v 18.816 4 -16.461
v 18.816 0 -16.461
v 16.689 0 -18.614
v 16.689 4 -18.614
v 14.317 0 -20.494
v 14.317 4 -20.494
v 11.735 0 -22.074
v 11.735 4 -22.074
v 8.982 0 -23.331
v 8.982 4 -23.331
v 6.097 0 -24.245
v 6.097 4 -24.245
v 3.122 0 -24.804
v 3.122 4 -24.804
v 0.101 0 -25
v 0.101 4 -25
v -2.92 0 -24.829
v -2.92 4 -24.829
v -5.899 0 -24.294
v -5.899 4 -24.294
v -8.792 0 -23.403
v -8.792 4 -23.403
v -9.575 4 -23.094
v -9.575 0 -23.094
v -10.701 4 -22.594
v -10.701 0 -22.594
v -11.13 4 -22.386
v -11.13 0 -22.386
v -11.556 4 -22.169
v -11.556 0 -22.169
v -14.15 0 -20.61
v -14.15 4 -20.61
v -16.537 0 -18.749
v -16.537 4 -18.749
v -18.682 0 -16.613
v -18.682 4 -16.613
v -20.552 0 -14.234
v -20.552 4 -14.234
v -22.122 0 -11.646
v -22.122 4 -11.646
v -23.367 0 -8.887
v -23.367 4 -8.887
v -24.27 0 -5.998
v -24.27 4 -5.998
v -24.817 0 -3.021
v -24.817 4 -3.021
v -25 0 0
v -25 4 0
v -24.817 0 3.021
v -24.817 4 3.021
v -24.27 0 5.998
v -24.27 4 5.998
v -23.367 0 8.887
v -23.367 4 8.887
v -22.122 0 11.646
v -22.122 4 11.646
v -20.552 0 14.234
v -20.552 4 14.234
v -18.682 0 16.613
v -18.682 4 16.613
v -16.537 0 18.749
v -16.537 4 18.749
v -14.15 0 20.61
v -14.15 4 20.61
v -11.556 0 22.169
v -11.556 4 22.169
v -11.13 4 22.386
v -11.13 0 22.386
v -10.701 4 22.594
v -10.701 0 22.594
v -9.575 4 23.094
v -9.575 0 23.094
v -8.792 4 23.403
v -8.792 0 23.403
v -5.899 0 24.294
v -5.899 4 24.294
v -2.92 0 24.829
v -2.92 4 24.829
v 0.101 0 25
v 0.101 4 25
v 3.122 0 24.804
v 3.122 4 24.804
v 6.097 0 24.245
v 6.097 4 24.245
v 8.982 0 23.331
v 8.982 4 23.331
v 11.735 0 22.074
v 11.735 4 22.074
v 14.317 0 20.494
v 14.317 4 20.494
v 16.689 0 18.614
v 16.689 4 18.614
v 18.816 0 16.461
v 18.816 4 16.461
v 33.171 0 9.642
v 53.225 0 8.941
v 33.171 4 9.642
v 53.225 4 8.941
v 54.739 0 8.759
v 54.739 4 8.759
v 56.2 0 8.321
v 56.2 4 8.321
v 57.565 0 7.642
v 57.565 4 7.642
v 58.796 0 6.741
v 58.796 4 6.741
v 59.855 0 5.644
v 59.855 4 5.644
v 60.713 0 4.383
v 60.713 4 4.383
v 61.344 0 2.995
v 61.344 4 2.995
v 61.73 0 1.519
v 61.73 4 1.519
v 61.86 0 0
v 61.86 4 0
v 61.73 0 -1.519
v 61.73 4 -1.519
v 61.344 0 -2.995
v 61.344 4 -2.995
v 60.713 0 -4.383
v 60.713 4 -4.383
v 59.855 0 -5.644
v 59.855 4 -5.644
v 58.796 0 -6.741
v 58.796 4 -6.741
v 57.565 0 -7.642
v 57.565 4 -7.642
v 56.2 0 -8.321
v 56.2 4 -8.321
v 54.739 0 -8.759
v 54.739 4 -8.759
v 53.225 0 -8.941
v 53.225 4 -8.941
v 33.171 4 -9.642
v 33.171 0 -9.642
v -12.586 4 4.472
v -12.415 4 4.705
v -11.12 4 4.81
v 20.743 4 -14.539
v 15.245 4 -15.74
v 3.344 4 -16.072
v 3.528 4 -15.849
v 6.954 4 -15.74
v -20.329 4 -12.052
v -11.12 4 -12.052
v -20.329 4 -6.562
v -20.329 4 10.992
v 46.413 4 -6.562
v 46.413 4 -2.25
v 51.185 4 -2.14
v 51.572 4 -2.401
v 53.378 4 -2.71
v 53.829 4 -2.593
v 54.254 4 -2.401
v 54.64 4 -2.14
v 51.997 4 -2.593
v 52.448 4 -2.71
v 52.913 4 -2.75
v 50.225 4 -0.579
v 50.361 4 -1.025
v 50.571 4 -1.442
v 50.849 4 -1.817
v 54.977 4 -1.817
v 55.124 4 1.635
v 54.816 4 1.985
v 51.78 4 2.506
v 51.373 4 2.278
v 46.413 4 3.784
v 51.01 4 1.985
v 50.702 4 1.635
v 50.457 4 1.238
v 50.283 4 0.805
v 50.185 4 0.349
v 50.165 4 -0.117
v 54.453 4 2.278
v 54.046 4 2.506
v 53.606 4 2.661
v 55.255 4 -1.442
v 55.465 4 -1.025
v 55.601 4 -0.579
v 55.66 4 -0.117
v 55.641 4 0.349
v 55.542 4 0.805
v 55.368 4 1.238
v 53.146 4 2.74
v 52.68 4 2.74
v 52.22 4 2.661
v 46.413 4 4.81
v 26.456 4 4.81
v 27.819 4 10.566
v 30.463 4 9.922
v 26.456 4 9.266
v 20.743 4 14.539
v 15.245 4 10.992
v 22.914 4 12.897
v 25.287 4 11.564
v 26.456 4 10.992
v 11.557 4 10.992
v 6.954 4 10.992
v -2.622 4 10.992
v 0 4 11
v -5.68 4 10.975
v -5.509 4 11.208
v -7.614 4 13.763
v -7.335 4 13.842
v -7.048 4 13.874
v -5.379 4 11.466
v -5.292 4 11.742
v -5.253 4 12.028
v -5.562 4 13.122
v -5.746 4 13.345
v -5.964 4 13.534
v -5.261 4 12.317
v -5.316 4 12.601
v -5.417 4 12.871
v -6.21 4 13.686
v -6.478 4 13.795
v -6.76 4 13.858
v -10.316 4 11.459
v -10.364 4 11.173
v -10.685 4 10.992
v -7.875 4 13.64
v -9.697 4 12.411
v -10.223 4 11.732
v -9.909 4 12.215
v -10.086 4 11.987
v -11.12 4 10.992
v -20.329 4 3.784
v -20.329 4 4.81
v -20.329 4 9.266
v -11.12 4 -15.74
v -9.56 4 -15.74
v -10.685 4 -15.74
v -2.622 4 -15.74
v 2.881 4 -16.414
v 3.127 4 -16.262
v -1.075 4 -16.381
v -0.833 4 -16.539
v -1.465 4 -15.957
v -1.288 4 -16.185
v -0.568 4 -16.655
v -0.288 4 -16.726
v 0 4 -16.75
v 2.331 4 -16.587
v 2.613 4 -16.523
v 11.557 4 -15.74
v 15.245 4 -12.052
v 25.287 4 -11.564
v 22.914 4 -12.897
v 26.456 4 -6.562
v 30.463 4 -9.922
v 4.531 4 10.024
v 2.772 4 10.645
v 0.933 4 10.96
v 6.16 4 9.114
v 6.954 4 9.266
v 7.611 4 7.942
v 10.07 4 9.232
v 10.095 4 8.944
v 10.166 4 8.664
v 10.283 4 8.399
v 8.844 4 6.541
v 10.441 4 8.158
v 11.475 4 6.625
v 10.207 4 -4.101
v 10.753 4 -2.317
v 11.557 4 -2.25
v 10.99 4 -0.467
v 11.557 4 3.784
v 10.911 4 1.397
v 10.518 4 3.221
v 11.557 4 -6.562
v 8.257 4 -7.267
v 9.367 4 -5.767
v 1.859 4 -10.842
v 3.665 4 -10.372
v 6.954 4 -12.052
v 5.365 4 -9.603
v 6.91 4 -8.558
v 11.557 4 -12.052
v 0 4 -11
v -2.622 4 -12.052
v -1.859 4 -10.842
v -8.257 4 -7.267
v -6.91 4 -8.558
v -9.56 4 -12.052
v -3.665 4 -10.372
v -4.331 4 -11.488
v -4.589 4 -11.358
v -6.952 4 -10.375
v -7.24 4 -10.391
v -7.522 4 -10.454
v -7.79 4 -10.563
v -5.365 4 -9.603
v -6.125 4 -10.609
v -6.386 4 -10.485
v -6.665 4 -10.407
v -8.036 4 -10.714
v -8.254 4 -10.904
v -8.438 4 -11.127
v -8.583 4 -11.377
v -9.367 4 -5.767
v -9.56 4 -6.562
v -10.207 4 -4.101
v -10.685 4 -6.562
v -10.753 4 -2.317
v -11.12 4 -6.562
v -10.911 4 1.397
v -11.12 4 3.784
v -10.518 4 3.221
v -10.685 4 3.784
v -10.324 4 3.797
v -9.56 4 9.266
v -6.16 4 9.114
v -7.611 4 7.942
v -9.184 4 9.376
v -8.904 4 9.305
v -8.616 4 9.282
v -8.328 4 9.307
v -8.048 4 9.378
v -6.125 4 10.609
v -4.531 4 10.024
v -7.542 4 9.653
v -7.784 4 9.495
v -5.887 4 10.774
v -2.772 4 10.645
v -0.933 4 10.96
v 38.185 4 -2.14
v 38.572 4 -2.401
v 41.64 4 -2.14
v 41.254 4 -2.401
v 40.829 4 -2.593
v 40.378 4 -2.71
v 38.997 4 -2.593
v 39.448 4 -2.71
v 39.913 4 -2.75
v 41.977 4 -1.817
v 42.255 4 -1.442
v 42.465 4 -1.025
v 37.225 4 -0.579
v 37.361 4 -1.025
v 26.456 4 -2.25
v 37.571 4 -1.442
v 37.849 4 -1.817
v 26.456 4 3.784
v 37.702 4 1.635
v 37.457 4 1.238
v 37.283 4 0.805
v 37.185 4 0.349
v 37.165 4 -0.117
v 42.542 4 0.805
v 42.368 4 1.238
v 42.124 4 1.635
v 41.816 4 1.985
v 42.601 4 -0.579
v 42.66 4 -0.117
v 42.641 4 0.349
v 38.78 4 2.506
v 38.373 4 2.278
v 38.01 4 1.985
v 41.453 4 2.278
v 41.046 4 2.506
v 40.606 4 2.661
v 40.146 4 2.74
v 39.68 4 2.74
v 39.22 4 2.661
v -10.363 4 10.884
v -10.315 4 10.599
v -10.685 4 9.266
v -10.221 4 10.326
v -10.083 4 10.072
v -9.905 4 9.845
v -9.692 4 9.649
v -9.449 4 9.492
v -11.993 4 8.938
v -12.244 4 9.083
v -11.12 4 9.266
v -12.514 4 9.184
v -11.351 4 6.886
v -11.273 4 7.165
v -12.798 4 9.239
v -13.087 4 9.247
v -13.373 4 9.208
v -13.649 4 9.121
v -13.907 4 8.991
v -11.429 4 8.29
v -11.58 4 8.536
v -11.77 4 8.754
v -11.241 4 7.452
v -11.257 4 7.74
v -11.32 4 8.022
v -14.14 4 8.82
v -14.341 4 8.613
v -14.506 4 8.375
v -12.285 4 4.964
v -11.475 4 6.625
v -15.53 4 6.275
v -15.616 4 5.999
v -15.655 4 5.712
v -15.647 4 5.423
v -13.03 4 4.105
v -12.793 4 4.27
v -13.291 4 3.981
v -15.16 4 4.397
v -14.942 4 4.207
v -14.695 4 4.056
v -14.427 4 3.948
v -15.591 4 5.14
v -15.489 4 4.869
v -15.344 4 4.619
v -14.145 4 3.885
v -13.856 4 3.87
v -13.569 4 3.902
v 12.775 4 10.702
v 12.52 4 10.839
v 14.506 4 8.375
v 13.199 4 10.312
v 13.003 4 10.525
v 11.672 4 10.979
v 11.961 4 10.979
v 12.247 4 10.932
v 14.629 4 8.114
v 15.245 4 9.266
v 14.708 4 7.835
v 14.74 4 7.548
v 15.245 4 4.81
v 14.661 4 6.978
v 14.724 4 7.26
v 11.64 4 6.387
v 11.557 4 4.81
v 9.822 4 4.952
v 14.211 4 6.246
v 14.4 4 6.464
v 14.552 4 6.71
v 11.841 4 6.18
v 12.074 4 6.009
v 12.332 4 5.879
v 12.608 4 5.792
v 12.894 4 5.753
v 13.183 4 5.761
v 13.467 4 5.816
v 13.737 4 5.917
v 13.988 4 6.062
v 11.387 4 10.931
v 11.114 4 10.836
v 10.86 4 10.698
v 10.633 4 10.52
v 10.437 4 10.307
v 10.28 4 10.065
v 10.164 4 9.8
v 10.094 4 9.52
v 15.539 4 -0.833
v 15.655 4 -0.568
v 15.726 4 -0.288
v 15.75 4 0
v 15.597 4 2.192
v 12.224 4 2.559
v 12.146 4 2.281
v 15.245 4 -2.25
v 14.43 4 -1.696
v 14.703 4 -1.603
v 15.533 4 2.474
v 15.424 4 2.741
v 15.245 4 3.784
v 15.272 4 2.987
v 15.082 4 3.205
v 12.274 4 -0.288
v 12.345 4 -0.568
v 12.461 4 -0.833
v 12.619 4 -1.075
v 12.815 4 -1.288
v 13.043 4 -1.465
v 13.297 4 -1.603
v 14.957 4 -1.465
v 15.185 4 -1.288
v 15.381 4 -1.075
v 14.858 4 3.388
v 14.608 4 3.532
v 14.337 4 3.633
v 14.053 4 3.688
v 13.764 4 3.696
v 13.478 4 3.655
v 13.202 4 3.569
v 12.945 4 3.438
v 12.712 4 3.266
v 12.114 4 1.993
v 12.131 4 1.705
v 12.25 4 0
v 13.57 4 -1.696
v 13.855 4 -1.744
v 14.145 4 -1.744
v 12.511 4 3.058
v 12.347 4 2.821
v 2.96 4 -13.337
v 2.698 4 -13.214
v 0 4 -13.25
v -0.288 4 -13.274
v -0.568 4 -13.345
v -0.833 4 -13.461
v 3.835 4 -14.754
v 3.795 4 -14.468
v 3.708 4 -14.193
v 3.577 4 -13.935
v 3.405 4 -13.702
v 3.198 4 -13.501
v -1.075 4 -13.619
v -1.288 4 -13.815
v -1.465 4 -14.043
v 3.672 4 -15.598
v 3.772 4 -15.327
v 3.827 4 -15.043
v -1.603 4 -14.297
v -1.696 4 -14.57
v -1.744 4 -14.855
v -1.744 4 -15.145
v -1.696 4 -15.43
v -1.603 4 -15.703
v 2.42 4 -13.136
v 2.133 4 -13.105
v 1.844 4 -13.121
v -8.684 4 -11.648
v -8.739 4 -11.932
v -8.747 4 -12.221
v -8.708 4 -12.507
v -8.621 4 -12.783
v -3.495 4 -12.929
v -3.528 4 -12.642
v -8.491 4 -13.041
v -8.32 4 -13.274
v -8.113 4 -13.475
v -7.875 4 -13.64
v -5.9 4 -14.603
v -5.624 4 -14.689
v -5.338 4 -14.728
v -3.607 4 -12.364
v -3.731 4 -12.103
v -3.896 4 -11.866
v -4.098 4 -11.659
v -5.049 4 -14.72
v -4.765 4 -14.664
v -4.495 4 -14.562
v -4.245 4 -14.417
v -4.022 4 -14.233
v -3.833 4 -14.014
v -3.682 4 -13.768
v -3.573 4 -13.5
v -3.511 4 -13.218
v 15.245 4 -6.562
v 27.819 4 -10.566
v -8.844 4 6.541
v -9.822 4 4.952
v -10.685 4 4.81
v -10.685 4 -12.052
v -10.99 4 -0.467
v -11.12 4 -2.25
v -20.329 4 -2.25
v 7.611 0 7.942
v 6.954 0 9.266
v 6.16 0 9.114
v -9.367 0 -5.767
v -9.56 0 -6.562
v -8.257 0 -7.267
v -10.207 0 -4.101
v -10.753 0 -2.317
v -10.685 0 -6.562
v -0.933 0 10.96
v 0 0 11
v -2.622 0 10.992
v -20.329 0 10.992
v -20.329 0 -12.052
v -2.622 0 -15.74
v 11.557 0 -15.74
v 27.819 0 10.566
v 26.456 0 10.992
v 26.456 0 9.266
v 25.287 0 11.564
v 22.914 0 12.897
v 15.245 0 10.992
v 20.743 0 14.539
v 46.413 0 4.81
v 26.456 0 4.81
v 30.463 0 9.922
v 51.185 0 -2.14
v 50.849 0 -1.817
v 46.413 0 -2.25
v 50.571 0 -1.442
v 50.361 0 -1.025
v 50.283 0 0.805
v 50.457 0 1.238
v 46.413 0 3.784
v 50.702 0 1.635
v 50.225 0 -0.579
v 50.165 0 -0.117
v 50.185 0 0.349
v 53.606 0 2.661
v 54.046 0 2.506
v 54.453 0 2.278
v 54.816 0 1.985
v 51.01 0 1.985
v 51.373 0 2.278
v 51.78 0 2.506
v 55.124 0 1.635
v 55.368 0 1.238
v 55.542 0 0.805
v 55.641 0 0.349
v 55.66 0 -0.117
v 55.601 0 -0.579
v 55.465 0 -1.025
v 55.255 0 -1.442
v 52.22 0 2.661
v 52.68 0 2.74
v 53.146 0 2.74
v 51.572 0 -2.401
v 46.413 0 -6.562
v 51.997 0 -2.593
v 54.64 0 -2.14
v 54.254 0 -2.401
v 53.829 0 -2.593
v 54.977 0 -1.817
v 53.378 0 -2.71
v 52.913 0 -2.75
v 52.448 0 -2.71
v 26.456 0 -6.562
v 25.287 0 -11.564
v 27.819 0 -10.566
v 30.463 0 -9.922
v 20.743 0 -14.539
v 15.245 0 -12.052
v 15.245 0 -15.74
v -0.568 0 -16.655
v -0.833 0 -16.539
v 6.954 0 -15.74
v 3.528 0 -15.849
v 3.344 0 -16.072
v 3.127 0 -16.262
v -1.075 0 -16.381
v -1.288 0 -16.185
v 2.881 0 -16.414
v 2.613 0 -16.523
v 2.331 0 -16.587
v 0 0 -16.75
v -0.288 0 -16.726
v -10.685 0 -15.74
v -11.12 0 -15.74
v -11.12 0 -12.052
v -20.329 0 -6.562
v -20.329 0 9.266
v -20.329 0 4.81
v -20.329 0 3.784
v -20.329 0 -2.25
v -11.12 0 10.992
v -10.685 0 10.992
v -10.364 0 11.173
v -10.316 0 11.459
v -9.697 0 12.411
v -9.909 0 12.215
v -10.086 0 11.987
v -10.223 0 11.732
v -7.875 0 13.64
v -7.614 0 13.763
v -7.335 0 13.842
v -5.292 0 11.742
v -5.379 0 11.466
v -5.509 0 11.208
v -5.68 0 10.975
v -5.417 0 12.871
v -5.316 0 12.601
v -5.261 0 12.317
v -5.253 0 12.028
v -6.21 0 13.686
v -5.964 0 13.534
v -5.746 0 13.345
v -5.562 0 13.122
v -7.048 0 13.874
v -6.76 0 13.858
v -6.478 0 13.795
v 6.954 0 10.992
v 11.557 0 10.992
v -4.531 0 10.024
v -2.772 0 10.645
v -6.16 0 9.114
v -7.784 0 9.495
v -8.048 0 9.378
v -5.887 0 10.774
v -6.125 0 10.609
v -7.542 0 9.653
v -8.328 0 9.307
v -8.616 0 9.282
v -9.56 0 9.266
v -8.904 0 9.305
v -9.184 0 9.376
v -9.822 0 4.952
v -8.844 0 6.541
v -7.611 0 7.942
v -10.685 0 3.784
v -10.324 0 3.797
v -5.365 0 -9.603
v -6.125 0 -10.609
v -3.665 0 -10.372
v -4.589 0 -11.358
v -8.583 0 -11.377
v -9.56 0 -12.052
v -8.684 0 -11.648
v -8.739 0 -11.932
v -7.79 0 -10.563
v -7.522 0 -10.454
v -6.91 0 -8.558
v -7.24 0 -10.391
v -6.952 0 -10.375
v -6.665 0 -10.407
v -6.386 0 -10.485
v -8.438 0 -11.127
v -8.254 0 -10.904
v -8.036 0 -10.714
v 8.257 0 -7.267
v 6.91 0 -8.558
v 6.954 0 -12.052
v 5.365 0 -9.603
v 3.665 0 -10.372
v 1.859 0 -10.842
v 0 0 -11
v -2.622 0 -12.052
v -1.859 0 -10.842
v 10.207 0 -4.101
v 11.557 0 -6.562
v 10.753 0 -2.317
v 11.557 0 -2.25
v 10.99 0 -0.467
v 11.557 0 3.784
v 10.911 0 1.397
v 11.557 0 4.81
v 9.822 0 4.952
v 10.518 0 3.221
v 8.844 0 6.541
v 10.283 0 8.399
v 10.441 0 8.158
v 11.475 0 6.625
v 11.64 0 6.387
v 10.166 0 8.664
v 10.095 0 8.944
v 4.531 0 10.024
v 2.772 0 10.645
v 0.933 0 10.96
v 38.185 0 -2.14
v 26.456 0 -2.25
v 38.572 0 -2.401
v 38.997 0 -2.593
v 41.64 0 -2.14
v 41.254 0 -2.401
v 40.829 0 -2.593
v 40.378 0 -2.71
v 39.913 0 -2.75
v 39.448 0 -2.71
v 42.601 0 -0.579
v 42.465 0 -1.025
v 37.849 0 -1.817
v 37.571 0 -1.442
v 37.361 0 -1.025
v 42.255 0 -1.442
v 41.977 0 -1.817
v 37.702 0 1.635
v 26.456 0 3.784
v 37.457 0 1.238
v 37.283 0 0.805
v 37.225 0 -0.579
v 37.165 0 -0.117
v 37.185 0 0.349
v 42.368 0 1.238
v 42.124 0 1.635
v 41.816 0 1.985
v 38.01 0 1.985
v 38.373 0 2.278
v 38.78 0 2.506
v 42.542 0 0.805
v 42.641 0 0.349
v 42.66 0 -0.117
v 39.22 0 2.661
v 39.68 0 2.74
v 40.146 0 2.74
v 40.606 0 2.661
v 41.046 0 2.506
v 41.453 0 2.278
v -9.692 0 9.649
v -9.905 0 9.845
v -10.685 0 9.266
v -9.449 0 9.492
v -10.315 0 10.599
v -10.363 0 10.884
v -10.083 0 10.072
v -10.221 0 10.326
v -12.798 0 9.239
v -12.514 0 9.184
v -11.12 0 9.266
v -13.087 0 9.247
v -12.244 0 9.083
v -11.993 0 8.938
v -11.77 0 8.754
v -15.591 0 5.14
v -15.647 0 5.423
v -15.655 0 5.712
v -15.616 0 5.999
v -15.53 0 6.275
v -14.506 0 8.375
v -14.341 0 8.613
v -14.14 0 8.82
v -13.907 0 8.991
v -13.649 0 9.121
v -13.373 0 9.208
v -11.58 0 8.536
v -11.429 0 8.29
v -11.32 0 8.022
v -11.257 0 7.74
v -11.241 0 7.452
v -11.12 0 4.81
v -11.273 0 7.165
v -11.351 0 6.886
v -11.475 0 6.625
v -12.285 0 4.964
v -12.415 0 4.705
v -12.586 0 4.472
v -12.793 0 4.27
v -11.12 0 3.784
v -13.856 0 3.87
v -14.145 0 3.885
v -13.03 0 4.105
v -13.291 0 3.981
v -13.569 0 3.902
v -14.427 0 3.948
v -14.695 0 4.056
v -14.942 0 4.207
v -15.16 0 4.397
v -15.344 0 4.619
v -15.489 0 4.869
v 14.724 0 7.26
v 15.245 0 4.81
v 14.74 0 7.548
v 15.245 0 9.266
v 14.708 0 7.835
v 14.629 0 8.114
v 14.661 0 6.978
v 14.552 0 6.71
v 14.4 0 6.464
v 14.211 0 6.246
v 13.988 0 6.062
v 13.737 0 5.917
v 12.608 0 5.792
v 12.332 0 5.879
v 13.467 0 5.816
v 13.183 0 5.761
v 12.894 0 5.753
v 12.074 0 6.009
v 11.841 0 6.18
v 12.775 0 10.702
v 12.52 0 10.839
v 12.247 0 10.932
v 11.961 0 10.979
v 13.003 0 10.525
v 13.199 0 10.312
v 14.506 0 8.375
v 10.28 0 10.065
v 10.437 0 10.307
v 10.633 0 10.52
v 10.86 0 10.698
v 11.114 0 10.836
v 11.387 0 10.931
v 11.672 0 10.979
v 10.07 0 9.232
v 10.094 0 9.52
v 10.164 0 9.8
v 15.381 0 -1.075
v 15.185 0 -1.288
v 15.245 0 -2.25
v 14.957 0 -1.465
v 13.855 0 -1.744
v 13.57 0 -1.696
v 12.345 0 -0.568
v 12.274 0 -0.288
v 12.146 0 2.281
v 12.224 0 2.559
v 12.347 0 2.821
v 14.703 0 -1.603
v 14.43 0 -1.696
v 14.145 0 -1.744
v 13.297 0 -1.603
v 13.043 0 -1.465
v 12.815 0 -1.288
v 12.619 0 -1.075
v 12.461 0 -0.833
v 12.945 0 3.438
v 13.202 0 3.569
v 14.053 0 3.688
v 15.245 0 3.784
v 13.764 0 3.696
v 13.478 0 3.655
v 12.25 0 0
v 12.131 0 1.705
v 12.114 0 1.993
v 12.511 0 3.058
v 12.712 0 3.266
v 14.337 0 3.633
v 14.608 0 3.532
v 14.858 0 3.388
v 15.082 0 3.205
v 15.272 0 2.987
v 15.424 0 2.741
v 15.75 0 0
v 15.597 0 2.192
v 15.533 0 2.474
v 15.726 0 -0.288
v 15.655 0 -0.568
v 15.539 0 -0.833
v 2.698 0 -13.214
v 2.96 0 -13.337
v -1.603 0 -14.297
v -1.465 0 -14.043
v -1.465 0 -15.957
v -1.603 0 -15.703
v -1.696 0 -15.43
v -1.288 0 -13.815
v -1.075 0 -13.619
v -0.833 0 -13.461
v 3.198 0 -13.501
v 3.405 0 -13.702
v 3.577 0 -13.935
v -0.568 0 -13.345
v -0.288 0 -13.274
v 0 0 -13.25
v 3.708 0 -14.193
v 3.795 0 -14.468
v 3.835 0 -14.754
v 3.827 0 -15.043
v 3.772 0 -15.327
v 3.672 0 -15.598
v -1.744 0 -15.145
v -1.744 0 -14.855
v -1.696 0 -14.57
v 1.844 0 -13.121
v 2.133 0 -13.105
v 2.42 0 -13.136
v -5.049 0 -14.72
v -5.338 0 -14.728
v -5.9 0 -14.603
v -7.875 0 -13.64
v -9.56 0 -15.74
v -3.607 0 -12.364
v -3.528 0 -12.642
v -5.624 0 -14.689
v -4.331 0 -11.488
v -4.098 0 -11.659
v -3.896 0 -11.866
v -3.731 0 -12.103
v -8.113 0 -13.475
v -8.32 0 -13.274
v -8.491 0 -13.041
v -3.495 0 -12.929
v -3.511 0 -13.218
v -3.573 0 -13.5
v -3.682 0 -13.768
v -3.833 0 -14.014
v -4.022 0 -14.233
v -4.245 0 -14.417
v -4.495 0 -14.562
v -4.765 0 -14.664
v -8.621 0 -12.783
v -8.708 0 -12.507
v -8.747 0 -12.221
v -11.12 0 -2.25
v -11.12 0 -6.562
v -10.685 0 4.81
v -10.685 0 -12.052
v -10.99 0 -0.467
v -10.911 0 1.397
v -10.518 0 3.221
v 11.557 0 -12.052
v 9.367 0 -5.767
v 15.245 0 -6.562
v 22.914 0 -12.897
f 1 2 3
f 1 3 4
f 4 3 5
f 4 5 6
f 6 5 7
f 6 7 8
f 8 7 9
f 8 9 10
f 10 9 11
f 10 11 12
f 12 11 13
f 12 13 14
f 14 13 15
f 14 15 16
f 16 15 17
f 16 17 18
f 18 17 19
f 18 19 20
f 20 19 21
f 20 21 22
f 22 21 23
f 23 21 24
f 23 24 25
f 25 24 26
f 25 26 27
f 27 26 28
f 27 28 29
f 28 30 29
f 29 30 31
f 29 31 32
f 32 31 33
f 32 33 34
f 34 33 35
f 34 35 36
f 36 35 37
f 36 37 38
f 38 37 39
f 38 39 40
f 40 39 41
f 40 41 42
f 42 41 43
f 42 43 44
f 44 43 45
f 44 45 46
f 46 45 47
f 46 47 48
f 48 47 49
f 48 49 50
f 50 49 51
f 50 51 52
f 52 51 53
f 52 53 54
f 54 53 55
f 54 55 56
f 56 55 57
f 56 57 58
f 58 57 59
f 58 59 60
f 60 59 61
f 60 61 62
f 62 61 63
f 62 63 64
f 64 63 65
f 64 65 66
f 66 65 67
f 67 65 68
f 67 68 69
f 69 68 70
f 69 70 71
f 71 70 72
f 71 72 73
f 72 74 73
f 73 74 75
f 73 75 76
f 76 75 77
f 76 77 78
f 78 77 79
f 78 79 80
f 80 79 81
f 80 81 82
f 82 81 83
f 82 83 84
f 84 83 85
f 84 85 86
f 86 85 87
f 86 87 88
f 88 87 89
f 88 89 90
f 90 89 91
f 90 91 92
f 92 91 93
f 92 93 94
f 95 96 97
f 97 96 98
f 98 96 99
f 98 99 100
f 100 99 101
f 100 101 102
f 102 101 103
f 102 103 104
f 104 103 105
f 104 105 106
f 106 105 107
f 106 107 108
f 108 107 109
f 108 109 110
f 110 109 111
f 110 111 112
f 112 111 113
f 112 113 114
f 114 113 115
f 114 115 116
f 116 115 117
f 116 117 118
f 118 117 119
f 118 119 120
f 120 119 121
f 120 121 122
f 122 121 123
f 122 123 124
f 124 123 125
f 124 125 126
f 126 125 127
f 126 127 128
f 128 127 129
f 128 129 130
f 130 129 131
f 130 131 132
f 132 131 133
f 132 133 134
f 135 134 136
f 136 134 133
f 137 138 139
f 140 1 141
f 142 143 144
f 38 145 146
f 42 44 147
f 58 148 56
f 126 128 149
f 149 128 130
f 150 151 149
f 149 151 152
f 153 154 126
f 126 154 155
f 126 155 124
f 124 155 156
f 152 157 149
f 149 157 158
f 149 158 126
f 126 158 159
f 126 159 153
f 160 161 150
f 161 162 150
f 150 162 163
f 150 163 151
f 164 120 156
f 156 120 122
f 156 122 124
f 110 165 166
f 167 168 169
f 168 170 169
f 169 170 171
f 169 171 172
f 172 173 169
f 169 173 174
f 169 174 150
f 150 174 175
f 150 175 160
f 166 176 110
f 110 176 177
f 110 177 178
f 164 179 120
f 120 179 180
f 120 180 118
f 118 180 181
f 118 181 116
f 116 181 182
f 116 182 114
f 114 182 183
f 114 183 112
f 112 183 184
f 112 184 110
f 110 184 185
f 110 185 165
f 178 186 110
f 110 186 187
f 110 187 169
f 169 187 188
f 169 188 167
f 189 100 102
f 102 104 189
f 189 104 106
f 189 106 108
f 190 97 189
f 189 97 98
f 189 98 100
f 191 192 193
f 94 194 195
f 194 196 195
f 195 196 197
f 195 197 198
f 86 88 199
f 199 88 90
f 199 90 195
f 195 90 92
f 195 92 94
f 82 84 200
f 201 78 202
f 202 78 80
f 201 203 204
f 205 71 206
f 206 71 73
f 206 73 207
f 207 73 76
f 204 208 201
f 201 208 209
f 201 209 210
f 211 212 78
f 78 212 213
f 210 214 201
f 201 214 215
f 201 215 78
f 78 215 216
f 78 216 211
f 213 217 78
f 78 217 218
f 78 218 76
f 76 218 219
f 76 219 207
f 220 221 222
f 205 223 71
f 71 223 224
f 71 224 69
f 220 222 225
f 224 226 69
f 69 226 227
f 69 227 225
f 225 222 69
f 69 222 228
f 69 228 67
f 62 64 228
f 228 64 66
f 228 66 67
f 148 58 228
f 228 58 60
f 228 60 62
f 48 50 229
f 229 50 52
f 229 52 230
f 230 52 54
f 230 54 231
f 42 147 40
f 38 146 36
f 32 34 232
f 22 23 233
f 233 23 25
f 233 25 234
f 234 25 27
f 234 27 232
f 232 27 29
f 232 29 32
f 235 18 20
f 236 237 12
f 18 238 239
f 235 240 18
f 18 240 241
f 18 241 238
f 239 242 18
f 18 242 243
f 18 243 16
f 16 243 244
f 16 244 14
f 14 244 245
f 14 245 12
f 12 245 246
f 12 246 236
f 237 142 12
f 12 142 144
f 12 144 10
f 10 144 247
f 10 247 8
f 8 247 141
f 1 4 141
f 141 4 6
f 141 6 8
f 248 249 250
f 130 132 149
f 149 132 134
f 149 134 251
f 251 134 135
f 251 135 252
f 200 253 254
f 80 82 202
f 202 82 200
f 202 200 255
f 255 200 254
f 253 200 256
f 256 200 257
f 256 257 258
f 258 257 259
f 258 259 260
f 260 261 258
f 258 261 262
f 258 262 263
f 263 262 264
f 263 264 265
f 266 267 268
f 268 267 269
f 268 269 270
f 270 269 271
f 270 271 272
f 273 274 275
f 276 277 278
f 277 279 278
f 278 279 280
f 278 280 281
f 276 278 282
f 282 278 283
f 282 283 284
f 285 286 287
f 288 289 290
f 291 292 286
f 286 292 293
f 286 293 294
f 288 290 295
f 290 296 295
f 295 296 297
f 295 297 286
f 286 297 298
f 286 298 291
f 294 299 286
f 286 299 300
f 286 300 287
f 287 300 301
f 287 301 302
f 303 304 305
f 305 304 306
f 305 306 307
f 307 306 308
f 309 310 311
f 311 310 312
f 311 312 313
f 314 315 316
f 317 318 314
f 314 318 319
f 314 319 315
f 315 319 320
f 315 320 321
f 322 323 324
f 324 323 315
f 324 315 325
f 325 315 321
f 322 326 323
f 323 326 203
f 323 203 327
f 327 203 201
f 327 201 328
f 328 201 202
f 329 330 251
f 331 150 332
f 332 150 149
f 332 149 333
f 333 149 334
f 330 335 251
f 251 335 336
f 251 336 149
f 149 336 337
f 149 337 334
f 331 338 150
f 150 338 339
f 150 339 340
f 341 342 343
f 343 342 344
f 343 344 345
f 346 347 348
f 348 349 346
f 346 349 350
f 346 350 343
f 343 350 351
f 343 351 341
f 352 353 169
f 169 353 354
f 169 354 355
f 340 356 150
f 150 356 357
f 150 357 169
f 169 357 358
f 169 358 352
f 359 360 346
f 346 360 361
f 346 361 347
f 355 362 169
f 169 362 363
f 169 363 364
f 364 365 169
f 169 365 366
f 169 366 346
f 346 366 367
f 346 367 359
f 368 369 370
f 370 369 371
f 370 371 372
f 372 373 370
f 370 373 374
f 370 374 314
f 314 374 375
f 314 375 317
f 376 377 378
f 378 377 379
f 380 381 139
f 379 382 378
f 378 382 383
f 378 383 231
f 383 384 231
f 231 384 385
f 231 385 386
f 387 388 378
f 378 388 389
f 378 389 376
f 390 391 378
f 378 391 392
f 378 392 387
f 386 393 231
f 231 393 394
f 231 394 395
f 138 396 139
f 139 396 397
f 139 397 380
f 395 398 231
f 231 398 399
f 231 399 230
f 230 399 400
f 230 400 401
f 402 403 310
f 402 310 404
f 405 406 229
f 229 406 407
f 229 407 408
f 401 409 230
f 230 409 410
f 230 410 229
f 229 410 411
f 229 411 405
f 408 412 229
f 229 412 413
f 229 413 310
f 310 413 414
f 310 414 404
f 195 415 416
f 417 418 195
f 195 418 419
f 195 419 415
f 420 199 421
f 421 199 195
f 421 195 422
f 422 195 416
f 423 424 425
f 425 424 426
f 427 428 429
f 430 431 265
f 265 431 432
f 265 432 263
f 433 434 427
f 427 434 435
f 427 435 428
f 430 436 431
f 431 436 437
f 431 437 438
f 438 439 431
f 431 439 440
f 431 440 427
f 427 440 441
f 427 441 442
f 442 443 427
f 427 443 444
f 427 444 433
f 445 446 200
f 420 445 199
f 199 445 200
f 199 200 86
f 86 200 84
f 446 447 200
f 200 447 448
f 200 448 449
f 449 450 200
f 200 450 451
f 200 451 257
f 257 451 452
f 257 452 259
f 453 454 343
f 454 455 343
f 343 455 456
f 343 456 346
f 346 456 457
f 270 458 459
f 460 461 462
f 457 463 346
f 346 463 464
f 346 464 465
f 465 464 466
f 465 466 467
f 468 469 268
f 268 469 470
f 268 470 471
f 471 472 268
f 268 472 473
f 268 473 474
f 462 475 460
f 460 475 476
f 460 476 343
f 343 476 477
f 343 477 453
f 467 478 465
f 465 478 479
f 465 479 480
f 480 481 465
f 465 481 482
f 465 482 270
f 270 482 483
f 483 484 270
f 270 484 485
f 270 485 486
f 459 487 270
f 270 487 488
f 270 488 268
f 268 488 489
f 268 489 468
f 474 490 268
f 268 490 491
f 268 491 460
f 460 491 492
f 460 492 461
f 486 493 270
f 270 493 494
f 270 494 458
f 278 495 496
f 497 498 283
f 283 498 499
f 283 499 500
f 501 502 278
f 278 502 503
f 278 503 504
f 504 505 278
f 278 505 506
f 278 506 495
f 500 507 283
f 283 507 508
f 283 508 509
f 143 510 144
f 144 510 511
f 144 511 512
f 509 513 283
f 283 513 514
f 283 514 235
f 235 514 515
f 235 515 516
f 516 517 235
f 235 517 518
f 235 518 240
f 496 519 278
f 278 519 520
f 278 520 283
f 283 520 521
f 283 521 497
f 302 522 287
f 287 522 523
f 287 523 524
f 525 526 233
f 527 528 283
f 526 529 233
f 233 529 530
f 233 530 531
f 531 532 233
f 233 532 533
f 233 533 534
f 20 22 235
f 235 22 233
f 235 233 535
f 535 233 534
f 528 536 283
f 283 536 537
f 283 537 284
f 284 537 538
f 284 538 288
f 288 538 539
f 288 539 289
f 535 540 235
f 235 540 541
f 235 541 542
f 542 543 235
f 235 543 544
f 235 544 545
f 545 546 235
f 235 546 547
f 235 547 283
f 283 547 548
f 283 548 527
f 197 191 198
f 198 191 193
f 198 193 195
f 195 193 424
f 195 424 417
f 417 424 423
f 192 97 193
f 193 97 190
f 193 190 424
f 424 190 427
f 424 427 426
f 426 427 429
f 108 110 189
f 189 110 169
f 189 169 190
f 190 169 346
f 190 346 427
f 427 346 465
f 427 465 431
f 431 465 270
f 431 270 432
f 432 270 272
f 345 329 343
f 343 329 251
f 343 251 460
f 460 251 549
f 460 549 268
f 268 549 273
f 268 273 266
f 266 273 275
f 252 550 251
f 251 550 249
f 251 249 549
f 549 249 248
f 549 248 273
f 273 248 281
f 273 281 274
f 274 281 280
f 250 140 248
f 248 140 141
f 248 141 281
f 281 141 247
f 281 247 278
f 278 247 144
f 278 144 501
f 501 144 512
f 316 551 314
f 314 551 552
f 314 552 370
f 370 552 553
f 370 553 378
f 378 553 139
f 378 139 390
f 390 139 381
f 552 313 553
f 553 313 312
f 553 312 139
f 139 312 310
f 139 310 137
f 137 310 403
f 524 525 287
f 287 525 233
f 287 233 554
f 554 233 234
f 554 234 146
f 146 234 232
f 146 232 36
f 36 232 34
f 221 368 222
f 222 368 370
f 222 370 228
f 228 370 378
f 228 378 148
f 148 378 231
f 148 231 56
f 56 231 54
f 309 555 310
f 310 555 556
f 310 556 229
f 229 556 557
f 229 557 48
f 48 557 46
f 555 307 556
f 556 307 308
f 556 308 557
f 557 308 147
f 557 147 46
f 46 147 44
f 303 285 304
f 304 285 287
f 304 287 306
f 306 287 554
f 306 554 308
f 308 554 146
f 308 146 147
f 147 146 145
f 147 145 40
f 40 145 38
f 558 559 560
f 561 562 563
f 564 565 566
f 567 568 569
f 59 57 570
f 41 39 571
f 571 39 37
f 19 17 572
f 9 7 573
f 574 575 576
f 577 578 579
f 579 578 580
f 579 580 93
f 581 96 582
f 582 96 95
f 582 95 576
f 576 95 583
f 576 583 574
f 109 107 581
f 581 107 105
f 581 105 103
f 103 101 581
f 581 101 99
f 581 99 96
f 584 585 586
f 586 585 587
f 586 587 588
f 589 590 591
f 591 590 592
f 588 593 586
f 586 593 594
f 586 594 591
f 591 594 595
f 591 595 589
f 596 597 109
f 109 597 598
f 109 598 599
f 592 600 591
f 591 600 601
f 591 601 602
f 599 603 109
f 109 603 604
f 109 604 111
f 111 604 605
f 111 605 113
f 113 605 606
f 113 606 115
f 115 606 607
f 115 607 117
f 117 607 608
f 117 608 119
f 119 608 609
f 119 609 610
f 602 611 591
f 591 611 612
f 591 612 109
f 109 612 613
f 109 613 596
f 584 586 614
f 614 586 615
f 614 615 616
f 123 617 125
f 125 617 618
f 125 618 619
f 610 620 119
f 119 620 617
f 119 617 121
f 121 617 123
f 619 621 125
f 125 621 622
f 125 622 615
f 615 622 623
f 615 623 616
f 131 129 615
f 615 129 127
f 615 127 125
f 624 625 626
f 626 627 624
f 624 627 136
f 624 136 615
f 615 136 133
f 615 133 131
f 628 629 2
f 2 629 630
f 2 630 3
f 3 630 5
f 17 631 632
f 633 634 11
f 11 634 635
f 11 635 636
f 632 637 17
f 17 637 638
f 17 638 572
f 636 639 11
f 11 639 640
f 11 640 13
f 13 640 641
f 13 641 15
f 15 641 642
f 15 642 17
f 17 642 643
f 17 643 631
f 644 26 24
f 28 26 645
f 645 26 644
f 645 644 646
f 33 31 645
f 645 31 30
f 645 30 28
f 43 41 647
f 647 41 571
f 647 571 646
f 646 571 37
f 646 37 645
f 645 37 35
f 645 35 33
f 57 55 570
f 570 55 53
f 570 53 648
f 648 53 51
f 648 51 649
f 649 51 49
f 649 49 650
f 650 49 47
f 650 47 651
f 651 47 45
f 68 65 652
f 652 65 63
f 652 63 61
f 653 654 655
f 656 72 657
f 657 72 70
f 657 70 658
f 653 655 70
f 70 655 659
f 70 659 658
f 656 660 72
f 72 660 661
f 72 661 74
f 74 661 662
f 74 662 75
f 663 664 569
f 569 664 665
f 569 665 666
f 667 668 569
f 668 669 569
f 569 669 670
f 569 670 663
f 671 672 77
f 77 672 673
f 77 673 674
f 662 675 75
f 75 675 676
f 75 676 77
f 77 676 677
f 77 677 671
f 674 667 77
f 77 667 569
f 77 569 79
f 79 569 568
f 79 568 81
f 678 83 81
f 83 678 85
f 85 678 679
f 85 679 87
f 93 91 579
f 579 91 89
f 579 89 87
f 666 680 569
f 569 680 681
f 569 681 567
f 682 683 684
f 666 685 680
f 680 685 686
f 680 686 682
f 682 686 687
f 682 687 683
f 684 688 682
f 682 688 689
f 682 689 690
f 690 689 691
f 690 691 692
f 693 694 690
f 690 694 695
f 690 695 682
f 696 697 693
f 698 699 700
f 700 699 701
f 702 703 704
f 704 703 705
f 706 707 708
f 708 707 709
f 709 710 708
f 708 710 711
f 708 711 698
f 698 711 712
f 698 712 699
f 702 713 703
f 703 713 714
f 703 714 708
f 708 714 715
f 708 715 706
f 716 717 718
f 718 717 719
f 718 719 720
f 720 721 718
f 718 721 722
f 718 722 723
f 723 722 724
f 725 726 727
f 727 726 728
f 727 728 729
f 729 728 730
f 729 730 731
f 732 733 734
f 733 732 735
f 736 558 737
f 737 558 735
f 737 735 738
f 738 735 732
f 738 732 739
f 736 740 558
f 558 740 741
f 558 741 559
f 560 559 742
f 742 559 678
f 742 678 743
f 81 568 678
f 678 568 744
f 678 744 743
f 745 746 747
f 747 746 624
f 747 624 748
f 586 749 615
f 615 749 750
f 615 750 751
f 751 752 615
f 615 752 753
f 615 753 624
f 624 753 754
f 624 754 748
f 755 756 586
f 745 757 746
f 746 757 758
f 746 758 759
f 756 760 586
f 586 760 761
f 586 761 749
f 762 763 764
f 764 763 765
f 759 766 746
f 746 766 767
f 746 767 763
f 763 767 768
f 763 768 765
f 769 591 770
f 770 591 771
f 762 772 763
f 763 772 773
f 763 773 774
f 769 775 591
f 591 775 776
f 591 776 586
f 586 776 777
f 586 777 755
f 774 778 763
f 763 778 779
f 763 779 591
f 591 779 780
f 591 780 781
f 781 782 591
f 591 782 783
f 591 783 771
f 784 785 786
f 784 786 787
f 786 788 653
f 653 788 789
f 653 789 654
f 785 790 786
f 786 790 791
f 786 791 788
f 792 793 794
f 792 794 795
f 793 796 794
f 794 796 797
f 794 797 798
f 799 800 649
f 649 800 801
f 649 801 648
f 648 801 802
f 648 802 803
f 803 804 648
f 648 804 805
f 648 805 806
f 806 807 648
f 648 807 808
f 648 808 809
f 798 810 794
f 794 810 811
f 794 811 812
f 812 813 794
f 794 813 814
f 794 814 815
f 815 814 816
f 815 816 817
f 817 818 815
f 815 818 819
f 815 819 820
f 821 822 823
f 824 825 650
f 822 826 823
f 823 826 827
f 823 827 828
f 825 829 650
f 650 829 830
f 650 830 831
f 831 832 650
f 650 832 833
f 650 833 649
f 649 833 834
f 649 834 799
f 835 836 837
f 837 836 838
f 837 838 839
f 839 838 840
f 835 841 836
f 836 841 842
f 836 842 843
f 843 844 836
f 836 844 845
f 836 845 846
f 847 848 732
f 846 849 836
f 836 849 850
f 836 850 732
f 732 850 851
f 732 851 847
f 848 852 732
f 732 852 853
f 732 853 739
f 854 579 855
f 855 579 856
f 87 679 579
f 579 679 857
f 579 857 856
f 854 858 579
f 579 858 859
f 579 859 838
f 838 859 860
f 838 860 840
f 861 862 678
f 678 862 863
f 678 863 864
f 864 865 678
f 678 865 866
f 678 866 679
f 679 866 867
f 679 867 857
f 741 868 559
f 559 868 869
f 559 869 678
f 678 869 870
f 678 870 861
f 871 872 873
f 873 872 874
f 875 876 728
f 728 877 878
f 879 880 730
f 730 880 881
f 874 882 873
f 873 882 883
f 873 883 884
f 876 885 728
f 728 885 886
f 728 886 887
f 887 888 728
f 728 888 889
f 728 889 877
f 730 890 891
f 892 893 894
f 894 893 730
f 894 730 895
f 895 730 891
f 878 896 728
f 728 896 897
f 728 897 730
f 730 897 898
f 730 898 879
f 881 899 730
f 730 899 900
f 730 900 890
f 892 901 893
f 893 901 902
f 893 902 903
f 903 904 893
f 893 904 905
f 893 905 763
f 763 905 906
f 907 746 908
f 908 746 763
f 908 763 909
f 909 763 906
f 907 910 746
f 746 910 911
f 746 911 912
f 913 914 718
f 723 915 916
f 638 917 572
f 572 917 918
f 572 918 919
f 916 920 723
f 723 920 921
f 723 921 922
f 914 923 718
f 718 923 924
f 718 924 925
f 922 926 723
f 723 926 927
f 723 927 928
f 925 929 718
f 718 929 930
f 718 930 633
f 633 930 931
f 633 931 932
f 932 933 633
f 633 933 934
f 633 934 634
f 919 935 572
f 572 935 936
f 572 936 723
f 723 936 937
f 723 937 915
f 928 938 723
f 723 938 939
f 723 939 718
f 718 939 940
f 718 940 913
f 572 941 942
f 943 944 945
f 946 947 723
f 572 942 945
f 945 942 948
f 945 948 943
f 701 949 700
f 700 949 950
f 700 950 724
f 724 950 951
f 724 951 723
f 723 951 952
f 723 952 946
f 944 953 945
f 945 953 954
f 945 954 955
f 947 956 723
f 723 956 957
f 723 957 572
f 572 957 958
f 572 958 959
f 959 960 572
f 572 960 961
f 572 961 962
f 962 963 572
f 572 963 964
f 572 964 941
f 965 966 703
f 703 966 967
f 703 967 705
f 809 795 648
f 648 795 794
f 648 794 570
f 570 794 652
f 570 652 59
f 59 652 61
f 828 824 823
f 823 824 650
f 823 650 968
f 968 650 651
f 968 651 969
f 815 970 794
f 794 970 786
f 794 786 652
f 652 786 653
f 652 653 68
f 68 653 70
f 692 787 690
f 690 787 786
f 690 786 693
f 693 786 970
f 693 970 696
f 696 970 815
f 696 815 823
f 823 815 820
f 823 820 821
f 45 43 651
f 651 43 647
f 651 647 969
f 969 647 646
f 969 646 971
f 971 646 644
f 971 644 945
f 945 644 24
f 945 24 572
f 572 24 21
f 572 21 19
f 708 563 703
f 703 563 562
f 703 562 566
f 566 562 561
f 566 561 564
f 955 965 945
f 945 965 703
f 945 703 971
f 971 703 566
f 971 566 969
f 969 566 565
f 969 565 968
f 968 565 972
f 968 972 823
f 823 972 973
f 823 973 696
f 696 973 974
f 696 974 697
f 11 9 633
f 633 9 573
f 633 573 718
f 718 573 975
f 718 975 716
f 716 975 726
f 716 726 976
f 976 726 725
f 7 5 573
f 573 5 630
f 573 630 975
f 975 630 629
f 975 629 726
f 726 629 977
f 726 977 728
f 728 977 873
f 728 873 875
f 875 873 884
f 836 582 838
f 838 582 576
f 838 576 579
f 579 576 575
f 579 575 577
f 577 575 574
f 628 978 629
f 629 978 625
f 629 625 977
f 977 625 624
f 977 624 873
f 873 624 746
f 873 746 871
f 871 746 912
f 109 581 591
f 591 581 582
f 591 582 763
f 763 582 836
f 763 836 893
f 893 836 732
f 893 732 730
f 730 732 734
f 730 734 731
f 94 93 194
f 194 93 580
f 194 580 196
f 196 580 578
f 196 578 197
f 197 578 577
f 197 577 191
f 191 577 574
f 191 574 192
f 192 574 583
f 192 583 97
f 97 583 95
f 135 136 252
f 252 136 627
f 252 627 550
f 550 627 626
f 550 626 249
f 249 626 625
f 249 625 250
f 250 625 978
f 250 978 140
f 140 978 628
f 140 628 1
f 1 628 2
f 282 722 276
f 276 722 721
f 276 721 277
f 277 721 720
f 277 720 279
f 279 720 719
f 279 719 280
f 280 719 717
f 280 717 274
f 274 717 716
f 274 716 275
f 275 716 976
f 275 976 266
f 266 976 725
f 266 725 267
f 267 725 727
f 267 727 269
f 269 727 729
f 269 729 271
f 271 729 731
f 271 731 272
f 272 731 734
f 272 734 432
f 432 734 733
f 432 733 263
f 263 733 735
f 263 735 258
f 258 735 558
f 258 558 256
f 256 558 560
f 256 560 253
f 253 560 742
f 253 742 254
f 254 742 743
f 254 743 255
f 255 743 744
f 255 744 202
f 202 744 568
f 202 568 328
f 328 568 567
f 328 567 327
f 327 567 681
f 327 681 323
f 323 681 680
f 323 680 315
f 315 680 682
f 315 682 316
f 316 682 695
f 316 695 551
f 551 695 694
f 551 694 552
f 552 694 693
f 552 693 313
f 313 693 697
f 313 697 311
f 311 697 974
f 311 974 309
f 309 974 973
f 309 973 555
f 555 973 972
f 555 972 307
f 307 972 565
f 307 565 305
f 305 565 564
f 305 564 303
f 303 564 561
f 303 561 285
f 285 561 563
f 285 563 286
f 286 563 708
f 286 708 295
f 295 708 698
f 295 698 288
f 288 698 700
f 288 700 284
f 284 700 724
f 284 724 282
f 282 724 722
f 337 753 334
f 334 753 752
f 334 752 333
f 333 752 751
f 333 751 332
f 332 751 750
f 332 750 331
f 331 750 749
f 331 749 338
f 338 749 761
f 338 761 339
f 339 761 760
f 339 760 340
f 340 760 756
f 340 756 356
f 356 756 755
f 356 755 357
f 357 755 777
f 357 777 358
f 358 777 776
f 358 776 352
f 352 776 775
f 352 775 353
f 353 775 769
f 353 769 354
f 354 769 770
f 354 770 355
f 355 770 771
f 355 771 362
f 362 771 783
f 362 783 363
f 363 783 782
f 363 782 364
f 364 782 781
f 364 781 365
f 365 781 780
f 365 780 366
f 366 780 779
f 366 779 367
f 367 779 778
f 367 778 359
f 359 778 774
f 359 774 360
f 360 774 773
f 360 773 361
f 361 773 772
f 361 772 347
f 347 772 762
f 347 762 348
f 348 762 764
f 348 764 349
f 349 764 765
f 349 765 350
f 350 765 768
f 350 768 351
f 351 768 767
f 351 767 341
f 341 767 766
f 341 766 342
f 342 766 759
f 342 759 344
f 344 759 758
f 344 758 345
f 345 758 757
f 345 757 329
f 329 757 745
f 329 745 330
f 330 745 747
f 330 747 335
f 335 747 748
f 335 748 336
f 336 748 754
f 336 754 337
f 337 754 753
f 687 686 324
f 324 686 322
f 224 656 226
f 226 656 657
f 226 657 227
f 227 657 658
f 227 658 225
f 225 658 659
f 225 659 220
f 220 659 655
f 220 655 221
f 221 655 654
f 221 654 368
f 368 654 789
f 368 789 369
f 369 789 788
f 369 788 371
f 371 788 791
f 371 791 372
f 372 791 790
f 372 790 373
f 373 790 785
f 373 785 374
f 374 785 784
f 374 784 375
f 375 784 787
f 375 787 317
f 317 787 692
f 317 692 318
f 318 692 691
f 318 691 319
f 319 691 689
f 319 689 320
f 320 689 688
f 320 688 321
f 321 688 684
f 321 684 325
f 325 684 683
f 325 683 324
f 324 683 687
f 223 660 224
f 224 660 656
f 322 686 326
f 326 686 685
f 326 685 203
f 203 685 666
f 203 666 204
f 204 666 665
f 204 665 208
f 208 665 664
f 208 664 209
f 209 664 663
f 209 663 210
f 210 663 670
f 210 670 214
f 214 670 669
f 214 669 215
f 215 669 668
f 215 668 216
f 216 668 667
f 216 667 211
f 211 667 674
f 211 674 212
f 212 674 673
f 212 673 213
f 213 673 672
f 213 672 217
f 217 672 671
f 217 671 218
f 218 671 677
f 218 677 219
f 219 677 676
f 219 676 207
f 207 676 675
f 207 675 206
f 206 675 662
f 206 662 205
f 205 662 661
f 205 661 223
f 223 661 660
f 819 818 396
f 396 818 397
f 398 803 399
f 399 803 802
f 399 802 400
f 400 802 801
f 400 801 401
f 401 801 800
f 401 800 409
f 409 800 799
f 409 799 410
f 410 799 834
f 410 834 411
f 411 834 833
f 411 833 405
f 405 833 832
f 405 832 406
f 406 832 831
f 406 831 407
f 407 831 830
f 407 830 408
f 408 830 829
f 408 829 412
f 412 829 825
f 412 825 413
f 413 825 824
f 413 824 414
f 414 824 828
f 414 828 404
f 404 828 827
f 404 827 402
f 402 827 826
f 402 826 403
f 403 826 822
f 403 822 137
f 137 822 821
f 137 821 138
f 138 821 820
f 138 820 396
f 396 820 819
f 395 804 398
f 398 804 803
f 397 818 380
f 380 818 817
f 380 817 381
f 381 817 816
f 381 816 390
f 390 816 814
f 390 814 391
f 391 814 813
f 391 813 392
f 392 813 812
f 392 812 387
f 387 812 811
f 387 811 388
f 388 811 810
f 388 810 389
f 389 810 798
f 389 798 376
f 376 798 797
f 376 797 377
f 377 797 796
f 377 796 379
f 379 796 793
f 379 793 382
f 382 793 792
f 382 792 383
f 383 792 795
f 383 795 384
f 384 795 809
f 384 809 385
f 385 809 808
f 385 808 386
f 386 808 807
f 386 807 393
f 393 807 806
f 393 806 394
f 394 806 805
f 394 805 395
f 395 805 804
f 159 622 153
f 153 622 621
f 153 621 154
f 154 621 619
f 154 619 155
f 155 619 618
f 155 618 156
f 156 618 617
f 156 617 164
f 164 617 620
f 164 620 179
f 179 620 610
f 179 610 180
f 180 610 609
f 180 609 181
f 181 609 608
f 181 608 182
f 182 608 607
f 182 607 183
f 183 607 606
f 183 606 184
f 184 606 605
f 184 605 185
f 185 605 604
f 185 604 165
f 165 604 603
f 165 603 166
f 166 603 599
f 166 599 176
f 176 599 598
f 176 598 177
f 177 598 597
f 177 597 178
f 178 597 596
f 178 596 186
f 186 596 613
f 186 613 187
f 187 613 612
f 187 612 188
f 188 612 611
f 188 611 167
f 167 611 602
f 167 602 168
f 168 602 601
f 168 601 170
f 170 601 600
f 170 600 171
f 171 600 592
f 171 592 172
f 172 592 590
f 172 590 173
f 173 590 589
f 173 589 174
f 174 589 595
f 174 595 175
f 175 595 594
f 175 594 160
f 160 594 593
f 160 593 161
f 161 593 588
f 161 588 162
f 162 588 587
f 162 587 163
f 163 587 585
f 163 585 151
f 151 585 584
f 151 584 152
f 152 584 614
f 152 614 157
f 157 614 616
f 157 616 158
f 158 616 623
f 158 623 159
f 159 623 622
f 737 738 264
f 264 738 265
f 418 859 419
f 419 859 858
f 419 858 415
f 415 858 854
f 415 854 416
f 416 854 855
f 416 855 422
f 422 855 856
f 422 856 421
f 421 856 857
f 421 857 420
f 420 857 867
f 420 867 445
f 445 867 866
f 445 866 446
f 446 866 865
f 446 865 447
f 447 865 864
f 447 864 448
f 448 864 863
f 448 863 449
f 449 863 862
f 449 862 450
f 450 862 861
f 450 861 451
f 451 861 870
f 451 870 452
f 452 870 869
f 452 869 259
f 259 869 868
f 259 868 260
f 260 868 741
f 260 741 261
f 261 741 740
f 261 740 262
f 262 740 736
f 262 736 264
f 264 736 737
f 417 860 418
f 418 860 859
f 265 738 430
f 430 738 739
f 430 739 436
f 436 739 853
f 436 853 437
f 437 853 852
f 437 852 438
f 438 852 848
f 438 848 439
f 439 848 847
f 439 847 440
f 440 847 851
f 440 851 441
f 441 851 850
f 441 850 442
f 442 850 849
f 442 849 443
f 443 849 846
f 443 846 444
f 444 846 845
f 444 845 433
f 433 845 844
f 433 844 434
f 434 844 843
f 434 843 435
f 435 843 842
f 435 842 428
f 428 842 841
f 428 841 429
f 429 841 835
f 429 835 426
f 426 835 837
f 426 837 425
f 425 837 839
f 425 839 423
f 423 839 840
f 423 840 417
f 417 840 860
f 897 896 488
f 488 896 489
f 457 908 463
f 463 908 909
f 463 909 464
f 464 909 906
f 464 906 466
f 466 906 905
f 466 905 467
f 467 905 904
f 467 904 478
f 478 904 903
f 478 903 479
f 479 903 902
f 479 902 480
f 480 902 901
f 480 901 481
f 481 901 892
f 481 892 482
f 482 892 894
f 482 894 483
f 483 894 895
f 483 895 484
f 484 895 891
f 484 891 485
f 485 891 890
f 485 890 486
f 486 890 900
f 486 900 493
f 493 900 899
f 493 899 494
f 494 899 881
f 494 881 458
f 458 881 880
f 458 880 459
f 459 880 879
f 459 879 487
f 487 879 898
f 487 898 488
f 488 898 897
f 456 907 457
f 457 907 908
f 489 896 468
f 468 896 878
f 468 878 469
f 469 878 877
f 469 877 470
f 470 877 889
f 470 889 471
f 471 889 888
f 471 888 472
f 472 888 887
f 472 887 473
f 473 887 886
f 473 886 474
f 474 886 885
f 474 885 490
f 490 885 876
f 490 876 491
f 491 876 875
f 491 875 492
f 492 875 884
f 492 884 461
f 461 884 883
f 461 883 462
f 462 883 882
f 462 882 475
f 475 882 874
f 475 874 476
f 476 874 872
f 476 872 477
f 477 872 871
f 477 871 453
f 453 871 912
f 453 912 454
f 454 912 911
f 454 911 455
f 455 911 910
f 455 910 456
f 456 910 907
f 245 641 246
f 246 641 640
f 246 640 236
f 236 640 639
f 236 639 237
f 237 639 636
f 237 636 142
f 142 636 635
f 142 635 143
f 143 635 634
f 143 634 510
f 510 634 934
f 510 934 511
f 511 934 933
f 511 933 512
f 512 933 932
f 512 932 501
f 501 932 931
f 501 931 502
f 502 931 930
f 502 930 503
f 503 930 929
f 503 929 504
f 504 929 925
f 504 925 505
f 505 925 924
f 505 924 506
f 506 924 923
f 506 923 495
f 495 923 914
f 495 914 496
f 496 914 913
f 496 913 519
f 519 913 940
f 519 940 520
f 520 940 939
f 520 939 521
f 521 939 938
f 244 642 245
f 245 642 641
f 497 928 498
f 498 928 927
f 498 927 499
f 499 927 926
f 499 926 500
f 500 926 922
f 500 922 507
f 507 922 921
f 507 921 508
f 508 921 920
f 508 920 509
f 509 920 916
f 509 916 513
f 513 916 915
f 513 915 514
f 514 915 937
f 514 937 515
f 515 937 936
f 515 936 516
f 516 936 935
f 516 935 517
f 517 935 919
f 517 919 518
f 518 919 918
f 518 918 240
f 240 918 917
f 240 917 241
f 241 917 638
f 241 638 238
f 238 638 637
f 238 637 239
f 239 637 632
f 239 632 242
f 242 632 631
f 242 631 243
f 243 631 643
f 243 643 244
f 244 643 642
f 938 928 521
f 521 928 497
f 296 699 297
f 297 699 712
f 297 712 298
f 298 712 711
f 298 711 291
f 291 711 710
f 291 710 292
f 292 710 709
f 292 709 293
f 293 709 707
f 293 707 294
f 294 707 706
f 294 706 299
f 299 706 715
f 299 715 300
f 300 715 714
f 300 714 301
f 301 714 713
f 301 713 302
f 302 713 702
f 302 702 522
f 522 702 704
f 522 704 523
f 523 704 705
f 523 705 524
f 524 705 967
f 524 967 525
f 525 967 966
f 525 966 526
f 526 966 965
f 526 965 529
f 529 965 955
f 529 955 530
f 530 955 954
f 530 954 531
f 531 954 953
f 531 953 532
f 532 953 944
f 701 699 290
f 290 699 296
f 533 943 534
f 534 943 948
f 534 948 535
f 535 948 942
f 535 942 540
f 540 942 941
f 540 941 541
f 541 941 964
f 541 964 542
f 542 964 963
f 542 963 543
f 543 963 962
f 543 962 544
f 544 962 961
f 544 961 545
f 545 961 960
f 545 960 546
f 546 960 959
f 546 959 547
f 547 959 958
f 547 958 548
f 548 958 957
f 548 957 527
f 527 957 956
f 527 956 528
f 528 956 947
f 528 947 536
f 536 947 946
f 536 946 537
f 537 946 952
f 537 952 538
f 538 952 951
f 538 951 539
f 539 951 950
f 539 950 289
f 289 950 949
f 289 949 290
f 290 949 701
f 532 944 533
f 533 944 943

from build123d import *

# Parameters (mm, degrees)
BOSS_EXTRUDE1_DEPTH = 4
FILLET1_R           = 20
SKETCH1_R           = 11
SKETCH1_R_2         = 2.75
CUT_EXTRUDE3_DEPTH  = 131.855321132


with BuildPart() as part:
    # Sketch3 → Boss-Extrude1 (new body)
    with BuildSketch(Plane(origin=(0, 0, 0), x_dir=(1, 0, 0), z_dir=(0, 1, 0))):
        with BuildLine():
            Line((22.912878475, 10), (53.225121597, 8.941473145))
            ThreePointArc((53.225121597, 8.941473145), (61.859801844, 0), (53.225121597, -8.941473145))
            Line((53.225121597, -8.941473145), (22.912878475, -10))
            ThreePointArc((22.912878475, -10), (-25, 0), (22.912878475, 10))
        make_face()
    extrude(amount=BOSS_EXTRUDE1_DEPTH)

    # Fillet1
    fillet1_edges = [part.edges().sort_by_distance(p)[0] for p in [
        (22.912878475, 2, -10),
        (22.912878475, 2, 10),
    ]]
    fillet(fillet1_edges, radius=FILLET1_R)

    # Sketch1 → Cut-Extrude3 (cut, through all)
    with BuildSketch(Plane(origin=(103.38268991, 0, 0), x_dir=(1, 0, 0), z_dir=(0, 1, 0))):
        with Locations(Location((-103.38268991, 0, 0), (0, 0, 270))):
            Circle(SKETCH1_R)
        with Locations(Location((-63.469811435, 0, 0), (0, 0, 90))):
            Circle(SKETCH1_R_2)
        with Locations(Location((-50.469811435, 0, 0), (0, 0, 90))):
            Circle(SKETCH1_R_2)
        with BuildLine():
            ThreePointArc((-111.25768991, 13.63990011), (-110.287035472, 14.156006229), (-109.282743756, 14.603145709))
            ThreePointArc((-109.282743756, 14.603145709), (-107.004610472, 13.636135502), (-107.971620679, 11.358002218))
            ThreePointArc((-107.971620679, 11.358002218), (-108.752736458, 11.010227067), (-109.50768991, 10.608811196))
            ThreePointArc((-109.50768991, 10.608811196), (-111.898234366, 11.249355653), (-111.25768991, 13.63990011))
        make_face()
        with BuildLine():
            ThreePointArc((-101.538646322, 13.121051911), (-102.458416633, 13.217723666), (-103.38268991, 13.25))
            ThreePointArc((-103.38268991, 13.25), (-105.13268991, 15), (-103.38268991, 16.75))
            ThreePointArc((-103.38268991, 16.75), (-102.214268974, 16.709197842), (-101.051540469, 16.586990151))
            ThreePointArc((-101.051540469, 16.586990151), (-99.562124275, 14.610468104), (-101.538646322, 13.121051911))
        make_face()
        with BuildLine():
            ThreePointArc((-87.63268991, 0), (-89.38268991, 1.75), (-91.13268991, 0))
            ThreePointArc((-91.13268991, 0), (-91.162530294, -0.854516803), (-91.251906068, -1.704870487))
            ThreePointArc((-91.251906068, -1.704870487), (-89.762489874, -3.681392534), (-87.785967827, -2.19197634))
            ThreePointArc((-87.785967827, -2.19197634), (-87.671056118, -1.098664461), (-87.63268991, 0))
        make_face()
        with BuildLine():
            ThreePointArc((-92.941547424, -8.157514548), (-92.639936187, -10.613940949), (-90.183509787, -10.312329712))
            ThreePointArc((-90.183509787, -10.312329712), (-89.496310569, -9.366481133), (-88.876764396, -8.375))
            ThreePointArc((-88.876764396, -8.375), (-89.517308853, -5.984455543), (-91.90785331, -6.625))
            ThreePointArc((-91.90785331, -6.625), (-92.397942073, -7.409305971), (-92.941547424, -8.157514548))
        make_face()
        with BuildLine():
            ThreePointArc((-111.25768991, -13.63990011), (-108.867145453, -12.999355653), (-109.50768991, -10.608811196))
            ThreePointArc((-109.50768991, -10.608811196), (-110.232802977, -10.155710264), (-110.924542982, -9.653131732))
            ThreePointArc((-110.924542982, -9.653131732), (-113.380969383, -9.954742969), (-113.079358146, -12.411169369))
            ThreePointArc((-113.079358146, -12.411169369), (-112.189978139, -13.057341768), (-111.25768991, -13.63990011))
        make_face()
        with BuildLine():
            ThreePointArc((-115.667875983, -4.963537363), (-117.946009267, -3.996527156), (-118.913019474, -6.27466044))
            ThreePointArc((-118.913019474, -6.27466044), (-118.437490185, -7.342716709), (-117.888615423, -8.375))
            ThreePointArc((-117.888615423, -8.375), (-115.498070966, -9.015544457), (-114.85752651, -6.625))
            ThreePointArc((-114.85752651, -6.625), (-115.291711023, -5.808417695), (-115.667875983, -4.963537363))
        make_face()
    extrude(amount=CUT_EXTRUDE3_DEPTH, mode=Mode.SUBTRACT)


solid = part.part
